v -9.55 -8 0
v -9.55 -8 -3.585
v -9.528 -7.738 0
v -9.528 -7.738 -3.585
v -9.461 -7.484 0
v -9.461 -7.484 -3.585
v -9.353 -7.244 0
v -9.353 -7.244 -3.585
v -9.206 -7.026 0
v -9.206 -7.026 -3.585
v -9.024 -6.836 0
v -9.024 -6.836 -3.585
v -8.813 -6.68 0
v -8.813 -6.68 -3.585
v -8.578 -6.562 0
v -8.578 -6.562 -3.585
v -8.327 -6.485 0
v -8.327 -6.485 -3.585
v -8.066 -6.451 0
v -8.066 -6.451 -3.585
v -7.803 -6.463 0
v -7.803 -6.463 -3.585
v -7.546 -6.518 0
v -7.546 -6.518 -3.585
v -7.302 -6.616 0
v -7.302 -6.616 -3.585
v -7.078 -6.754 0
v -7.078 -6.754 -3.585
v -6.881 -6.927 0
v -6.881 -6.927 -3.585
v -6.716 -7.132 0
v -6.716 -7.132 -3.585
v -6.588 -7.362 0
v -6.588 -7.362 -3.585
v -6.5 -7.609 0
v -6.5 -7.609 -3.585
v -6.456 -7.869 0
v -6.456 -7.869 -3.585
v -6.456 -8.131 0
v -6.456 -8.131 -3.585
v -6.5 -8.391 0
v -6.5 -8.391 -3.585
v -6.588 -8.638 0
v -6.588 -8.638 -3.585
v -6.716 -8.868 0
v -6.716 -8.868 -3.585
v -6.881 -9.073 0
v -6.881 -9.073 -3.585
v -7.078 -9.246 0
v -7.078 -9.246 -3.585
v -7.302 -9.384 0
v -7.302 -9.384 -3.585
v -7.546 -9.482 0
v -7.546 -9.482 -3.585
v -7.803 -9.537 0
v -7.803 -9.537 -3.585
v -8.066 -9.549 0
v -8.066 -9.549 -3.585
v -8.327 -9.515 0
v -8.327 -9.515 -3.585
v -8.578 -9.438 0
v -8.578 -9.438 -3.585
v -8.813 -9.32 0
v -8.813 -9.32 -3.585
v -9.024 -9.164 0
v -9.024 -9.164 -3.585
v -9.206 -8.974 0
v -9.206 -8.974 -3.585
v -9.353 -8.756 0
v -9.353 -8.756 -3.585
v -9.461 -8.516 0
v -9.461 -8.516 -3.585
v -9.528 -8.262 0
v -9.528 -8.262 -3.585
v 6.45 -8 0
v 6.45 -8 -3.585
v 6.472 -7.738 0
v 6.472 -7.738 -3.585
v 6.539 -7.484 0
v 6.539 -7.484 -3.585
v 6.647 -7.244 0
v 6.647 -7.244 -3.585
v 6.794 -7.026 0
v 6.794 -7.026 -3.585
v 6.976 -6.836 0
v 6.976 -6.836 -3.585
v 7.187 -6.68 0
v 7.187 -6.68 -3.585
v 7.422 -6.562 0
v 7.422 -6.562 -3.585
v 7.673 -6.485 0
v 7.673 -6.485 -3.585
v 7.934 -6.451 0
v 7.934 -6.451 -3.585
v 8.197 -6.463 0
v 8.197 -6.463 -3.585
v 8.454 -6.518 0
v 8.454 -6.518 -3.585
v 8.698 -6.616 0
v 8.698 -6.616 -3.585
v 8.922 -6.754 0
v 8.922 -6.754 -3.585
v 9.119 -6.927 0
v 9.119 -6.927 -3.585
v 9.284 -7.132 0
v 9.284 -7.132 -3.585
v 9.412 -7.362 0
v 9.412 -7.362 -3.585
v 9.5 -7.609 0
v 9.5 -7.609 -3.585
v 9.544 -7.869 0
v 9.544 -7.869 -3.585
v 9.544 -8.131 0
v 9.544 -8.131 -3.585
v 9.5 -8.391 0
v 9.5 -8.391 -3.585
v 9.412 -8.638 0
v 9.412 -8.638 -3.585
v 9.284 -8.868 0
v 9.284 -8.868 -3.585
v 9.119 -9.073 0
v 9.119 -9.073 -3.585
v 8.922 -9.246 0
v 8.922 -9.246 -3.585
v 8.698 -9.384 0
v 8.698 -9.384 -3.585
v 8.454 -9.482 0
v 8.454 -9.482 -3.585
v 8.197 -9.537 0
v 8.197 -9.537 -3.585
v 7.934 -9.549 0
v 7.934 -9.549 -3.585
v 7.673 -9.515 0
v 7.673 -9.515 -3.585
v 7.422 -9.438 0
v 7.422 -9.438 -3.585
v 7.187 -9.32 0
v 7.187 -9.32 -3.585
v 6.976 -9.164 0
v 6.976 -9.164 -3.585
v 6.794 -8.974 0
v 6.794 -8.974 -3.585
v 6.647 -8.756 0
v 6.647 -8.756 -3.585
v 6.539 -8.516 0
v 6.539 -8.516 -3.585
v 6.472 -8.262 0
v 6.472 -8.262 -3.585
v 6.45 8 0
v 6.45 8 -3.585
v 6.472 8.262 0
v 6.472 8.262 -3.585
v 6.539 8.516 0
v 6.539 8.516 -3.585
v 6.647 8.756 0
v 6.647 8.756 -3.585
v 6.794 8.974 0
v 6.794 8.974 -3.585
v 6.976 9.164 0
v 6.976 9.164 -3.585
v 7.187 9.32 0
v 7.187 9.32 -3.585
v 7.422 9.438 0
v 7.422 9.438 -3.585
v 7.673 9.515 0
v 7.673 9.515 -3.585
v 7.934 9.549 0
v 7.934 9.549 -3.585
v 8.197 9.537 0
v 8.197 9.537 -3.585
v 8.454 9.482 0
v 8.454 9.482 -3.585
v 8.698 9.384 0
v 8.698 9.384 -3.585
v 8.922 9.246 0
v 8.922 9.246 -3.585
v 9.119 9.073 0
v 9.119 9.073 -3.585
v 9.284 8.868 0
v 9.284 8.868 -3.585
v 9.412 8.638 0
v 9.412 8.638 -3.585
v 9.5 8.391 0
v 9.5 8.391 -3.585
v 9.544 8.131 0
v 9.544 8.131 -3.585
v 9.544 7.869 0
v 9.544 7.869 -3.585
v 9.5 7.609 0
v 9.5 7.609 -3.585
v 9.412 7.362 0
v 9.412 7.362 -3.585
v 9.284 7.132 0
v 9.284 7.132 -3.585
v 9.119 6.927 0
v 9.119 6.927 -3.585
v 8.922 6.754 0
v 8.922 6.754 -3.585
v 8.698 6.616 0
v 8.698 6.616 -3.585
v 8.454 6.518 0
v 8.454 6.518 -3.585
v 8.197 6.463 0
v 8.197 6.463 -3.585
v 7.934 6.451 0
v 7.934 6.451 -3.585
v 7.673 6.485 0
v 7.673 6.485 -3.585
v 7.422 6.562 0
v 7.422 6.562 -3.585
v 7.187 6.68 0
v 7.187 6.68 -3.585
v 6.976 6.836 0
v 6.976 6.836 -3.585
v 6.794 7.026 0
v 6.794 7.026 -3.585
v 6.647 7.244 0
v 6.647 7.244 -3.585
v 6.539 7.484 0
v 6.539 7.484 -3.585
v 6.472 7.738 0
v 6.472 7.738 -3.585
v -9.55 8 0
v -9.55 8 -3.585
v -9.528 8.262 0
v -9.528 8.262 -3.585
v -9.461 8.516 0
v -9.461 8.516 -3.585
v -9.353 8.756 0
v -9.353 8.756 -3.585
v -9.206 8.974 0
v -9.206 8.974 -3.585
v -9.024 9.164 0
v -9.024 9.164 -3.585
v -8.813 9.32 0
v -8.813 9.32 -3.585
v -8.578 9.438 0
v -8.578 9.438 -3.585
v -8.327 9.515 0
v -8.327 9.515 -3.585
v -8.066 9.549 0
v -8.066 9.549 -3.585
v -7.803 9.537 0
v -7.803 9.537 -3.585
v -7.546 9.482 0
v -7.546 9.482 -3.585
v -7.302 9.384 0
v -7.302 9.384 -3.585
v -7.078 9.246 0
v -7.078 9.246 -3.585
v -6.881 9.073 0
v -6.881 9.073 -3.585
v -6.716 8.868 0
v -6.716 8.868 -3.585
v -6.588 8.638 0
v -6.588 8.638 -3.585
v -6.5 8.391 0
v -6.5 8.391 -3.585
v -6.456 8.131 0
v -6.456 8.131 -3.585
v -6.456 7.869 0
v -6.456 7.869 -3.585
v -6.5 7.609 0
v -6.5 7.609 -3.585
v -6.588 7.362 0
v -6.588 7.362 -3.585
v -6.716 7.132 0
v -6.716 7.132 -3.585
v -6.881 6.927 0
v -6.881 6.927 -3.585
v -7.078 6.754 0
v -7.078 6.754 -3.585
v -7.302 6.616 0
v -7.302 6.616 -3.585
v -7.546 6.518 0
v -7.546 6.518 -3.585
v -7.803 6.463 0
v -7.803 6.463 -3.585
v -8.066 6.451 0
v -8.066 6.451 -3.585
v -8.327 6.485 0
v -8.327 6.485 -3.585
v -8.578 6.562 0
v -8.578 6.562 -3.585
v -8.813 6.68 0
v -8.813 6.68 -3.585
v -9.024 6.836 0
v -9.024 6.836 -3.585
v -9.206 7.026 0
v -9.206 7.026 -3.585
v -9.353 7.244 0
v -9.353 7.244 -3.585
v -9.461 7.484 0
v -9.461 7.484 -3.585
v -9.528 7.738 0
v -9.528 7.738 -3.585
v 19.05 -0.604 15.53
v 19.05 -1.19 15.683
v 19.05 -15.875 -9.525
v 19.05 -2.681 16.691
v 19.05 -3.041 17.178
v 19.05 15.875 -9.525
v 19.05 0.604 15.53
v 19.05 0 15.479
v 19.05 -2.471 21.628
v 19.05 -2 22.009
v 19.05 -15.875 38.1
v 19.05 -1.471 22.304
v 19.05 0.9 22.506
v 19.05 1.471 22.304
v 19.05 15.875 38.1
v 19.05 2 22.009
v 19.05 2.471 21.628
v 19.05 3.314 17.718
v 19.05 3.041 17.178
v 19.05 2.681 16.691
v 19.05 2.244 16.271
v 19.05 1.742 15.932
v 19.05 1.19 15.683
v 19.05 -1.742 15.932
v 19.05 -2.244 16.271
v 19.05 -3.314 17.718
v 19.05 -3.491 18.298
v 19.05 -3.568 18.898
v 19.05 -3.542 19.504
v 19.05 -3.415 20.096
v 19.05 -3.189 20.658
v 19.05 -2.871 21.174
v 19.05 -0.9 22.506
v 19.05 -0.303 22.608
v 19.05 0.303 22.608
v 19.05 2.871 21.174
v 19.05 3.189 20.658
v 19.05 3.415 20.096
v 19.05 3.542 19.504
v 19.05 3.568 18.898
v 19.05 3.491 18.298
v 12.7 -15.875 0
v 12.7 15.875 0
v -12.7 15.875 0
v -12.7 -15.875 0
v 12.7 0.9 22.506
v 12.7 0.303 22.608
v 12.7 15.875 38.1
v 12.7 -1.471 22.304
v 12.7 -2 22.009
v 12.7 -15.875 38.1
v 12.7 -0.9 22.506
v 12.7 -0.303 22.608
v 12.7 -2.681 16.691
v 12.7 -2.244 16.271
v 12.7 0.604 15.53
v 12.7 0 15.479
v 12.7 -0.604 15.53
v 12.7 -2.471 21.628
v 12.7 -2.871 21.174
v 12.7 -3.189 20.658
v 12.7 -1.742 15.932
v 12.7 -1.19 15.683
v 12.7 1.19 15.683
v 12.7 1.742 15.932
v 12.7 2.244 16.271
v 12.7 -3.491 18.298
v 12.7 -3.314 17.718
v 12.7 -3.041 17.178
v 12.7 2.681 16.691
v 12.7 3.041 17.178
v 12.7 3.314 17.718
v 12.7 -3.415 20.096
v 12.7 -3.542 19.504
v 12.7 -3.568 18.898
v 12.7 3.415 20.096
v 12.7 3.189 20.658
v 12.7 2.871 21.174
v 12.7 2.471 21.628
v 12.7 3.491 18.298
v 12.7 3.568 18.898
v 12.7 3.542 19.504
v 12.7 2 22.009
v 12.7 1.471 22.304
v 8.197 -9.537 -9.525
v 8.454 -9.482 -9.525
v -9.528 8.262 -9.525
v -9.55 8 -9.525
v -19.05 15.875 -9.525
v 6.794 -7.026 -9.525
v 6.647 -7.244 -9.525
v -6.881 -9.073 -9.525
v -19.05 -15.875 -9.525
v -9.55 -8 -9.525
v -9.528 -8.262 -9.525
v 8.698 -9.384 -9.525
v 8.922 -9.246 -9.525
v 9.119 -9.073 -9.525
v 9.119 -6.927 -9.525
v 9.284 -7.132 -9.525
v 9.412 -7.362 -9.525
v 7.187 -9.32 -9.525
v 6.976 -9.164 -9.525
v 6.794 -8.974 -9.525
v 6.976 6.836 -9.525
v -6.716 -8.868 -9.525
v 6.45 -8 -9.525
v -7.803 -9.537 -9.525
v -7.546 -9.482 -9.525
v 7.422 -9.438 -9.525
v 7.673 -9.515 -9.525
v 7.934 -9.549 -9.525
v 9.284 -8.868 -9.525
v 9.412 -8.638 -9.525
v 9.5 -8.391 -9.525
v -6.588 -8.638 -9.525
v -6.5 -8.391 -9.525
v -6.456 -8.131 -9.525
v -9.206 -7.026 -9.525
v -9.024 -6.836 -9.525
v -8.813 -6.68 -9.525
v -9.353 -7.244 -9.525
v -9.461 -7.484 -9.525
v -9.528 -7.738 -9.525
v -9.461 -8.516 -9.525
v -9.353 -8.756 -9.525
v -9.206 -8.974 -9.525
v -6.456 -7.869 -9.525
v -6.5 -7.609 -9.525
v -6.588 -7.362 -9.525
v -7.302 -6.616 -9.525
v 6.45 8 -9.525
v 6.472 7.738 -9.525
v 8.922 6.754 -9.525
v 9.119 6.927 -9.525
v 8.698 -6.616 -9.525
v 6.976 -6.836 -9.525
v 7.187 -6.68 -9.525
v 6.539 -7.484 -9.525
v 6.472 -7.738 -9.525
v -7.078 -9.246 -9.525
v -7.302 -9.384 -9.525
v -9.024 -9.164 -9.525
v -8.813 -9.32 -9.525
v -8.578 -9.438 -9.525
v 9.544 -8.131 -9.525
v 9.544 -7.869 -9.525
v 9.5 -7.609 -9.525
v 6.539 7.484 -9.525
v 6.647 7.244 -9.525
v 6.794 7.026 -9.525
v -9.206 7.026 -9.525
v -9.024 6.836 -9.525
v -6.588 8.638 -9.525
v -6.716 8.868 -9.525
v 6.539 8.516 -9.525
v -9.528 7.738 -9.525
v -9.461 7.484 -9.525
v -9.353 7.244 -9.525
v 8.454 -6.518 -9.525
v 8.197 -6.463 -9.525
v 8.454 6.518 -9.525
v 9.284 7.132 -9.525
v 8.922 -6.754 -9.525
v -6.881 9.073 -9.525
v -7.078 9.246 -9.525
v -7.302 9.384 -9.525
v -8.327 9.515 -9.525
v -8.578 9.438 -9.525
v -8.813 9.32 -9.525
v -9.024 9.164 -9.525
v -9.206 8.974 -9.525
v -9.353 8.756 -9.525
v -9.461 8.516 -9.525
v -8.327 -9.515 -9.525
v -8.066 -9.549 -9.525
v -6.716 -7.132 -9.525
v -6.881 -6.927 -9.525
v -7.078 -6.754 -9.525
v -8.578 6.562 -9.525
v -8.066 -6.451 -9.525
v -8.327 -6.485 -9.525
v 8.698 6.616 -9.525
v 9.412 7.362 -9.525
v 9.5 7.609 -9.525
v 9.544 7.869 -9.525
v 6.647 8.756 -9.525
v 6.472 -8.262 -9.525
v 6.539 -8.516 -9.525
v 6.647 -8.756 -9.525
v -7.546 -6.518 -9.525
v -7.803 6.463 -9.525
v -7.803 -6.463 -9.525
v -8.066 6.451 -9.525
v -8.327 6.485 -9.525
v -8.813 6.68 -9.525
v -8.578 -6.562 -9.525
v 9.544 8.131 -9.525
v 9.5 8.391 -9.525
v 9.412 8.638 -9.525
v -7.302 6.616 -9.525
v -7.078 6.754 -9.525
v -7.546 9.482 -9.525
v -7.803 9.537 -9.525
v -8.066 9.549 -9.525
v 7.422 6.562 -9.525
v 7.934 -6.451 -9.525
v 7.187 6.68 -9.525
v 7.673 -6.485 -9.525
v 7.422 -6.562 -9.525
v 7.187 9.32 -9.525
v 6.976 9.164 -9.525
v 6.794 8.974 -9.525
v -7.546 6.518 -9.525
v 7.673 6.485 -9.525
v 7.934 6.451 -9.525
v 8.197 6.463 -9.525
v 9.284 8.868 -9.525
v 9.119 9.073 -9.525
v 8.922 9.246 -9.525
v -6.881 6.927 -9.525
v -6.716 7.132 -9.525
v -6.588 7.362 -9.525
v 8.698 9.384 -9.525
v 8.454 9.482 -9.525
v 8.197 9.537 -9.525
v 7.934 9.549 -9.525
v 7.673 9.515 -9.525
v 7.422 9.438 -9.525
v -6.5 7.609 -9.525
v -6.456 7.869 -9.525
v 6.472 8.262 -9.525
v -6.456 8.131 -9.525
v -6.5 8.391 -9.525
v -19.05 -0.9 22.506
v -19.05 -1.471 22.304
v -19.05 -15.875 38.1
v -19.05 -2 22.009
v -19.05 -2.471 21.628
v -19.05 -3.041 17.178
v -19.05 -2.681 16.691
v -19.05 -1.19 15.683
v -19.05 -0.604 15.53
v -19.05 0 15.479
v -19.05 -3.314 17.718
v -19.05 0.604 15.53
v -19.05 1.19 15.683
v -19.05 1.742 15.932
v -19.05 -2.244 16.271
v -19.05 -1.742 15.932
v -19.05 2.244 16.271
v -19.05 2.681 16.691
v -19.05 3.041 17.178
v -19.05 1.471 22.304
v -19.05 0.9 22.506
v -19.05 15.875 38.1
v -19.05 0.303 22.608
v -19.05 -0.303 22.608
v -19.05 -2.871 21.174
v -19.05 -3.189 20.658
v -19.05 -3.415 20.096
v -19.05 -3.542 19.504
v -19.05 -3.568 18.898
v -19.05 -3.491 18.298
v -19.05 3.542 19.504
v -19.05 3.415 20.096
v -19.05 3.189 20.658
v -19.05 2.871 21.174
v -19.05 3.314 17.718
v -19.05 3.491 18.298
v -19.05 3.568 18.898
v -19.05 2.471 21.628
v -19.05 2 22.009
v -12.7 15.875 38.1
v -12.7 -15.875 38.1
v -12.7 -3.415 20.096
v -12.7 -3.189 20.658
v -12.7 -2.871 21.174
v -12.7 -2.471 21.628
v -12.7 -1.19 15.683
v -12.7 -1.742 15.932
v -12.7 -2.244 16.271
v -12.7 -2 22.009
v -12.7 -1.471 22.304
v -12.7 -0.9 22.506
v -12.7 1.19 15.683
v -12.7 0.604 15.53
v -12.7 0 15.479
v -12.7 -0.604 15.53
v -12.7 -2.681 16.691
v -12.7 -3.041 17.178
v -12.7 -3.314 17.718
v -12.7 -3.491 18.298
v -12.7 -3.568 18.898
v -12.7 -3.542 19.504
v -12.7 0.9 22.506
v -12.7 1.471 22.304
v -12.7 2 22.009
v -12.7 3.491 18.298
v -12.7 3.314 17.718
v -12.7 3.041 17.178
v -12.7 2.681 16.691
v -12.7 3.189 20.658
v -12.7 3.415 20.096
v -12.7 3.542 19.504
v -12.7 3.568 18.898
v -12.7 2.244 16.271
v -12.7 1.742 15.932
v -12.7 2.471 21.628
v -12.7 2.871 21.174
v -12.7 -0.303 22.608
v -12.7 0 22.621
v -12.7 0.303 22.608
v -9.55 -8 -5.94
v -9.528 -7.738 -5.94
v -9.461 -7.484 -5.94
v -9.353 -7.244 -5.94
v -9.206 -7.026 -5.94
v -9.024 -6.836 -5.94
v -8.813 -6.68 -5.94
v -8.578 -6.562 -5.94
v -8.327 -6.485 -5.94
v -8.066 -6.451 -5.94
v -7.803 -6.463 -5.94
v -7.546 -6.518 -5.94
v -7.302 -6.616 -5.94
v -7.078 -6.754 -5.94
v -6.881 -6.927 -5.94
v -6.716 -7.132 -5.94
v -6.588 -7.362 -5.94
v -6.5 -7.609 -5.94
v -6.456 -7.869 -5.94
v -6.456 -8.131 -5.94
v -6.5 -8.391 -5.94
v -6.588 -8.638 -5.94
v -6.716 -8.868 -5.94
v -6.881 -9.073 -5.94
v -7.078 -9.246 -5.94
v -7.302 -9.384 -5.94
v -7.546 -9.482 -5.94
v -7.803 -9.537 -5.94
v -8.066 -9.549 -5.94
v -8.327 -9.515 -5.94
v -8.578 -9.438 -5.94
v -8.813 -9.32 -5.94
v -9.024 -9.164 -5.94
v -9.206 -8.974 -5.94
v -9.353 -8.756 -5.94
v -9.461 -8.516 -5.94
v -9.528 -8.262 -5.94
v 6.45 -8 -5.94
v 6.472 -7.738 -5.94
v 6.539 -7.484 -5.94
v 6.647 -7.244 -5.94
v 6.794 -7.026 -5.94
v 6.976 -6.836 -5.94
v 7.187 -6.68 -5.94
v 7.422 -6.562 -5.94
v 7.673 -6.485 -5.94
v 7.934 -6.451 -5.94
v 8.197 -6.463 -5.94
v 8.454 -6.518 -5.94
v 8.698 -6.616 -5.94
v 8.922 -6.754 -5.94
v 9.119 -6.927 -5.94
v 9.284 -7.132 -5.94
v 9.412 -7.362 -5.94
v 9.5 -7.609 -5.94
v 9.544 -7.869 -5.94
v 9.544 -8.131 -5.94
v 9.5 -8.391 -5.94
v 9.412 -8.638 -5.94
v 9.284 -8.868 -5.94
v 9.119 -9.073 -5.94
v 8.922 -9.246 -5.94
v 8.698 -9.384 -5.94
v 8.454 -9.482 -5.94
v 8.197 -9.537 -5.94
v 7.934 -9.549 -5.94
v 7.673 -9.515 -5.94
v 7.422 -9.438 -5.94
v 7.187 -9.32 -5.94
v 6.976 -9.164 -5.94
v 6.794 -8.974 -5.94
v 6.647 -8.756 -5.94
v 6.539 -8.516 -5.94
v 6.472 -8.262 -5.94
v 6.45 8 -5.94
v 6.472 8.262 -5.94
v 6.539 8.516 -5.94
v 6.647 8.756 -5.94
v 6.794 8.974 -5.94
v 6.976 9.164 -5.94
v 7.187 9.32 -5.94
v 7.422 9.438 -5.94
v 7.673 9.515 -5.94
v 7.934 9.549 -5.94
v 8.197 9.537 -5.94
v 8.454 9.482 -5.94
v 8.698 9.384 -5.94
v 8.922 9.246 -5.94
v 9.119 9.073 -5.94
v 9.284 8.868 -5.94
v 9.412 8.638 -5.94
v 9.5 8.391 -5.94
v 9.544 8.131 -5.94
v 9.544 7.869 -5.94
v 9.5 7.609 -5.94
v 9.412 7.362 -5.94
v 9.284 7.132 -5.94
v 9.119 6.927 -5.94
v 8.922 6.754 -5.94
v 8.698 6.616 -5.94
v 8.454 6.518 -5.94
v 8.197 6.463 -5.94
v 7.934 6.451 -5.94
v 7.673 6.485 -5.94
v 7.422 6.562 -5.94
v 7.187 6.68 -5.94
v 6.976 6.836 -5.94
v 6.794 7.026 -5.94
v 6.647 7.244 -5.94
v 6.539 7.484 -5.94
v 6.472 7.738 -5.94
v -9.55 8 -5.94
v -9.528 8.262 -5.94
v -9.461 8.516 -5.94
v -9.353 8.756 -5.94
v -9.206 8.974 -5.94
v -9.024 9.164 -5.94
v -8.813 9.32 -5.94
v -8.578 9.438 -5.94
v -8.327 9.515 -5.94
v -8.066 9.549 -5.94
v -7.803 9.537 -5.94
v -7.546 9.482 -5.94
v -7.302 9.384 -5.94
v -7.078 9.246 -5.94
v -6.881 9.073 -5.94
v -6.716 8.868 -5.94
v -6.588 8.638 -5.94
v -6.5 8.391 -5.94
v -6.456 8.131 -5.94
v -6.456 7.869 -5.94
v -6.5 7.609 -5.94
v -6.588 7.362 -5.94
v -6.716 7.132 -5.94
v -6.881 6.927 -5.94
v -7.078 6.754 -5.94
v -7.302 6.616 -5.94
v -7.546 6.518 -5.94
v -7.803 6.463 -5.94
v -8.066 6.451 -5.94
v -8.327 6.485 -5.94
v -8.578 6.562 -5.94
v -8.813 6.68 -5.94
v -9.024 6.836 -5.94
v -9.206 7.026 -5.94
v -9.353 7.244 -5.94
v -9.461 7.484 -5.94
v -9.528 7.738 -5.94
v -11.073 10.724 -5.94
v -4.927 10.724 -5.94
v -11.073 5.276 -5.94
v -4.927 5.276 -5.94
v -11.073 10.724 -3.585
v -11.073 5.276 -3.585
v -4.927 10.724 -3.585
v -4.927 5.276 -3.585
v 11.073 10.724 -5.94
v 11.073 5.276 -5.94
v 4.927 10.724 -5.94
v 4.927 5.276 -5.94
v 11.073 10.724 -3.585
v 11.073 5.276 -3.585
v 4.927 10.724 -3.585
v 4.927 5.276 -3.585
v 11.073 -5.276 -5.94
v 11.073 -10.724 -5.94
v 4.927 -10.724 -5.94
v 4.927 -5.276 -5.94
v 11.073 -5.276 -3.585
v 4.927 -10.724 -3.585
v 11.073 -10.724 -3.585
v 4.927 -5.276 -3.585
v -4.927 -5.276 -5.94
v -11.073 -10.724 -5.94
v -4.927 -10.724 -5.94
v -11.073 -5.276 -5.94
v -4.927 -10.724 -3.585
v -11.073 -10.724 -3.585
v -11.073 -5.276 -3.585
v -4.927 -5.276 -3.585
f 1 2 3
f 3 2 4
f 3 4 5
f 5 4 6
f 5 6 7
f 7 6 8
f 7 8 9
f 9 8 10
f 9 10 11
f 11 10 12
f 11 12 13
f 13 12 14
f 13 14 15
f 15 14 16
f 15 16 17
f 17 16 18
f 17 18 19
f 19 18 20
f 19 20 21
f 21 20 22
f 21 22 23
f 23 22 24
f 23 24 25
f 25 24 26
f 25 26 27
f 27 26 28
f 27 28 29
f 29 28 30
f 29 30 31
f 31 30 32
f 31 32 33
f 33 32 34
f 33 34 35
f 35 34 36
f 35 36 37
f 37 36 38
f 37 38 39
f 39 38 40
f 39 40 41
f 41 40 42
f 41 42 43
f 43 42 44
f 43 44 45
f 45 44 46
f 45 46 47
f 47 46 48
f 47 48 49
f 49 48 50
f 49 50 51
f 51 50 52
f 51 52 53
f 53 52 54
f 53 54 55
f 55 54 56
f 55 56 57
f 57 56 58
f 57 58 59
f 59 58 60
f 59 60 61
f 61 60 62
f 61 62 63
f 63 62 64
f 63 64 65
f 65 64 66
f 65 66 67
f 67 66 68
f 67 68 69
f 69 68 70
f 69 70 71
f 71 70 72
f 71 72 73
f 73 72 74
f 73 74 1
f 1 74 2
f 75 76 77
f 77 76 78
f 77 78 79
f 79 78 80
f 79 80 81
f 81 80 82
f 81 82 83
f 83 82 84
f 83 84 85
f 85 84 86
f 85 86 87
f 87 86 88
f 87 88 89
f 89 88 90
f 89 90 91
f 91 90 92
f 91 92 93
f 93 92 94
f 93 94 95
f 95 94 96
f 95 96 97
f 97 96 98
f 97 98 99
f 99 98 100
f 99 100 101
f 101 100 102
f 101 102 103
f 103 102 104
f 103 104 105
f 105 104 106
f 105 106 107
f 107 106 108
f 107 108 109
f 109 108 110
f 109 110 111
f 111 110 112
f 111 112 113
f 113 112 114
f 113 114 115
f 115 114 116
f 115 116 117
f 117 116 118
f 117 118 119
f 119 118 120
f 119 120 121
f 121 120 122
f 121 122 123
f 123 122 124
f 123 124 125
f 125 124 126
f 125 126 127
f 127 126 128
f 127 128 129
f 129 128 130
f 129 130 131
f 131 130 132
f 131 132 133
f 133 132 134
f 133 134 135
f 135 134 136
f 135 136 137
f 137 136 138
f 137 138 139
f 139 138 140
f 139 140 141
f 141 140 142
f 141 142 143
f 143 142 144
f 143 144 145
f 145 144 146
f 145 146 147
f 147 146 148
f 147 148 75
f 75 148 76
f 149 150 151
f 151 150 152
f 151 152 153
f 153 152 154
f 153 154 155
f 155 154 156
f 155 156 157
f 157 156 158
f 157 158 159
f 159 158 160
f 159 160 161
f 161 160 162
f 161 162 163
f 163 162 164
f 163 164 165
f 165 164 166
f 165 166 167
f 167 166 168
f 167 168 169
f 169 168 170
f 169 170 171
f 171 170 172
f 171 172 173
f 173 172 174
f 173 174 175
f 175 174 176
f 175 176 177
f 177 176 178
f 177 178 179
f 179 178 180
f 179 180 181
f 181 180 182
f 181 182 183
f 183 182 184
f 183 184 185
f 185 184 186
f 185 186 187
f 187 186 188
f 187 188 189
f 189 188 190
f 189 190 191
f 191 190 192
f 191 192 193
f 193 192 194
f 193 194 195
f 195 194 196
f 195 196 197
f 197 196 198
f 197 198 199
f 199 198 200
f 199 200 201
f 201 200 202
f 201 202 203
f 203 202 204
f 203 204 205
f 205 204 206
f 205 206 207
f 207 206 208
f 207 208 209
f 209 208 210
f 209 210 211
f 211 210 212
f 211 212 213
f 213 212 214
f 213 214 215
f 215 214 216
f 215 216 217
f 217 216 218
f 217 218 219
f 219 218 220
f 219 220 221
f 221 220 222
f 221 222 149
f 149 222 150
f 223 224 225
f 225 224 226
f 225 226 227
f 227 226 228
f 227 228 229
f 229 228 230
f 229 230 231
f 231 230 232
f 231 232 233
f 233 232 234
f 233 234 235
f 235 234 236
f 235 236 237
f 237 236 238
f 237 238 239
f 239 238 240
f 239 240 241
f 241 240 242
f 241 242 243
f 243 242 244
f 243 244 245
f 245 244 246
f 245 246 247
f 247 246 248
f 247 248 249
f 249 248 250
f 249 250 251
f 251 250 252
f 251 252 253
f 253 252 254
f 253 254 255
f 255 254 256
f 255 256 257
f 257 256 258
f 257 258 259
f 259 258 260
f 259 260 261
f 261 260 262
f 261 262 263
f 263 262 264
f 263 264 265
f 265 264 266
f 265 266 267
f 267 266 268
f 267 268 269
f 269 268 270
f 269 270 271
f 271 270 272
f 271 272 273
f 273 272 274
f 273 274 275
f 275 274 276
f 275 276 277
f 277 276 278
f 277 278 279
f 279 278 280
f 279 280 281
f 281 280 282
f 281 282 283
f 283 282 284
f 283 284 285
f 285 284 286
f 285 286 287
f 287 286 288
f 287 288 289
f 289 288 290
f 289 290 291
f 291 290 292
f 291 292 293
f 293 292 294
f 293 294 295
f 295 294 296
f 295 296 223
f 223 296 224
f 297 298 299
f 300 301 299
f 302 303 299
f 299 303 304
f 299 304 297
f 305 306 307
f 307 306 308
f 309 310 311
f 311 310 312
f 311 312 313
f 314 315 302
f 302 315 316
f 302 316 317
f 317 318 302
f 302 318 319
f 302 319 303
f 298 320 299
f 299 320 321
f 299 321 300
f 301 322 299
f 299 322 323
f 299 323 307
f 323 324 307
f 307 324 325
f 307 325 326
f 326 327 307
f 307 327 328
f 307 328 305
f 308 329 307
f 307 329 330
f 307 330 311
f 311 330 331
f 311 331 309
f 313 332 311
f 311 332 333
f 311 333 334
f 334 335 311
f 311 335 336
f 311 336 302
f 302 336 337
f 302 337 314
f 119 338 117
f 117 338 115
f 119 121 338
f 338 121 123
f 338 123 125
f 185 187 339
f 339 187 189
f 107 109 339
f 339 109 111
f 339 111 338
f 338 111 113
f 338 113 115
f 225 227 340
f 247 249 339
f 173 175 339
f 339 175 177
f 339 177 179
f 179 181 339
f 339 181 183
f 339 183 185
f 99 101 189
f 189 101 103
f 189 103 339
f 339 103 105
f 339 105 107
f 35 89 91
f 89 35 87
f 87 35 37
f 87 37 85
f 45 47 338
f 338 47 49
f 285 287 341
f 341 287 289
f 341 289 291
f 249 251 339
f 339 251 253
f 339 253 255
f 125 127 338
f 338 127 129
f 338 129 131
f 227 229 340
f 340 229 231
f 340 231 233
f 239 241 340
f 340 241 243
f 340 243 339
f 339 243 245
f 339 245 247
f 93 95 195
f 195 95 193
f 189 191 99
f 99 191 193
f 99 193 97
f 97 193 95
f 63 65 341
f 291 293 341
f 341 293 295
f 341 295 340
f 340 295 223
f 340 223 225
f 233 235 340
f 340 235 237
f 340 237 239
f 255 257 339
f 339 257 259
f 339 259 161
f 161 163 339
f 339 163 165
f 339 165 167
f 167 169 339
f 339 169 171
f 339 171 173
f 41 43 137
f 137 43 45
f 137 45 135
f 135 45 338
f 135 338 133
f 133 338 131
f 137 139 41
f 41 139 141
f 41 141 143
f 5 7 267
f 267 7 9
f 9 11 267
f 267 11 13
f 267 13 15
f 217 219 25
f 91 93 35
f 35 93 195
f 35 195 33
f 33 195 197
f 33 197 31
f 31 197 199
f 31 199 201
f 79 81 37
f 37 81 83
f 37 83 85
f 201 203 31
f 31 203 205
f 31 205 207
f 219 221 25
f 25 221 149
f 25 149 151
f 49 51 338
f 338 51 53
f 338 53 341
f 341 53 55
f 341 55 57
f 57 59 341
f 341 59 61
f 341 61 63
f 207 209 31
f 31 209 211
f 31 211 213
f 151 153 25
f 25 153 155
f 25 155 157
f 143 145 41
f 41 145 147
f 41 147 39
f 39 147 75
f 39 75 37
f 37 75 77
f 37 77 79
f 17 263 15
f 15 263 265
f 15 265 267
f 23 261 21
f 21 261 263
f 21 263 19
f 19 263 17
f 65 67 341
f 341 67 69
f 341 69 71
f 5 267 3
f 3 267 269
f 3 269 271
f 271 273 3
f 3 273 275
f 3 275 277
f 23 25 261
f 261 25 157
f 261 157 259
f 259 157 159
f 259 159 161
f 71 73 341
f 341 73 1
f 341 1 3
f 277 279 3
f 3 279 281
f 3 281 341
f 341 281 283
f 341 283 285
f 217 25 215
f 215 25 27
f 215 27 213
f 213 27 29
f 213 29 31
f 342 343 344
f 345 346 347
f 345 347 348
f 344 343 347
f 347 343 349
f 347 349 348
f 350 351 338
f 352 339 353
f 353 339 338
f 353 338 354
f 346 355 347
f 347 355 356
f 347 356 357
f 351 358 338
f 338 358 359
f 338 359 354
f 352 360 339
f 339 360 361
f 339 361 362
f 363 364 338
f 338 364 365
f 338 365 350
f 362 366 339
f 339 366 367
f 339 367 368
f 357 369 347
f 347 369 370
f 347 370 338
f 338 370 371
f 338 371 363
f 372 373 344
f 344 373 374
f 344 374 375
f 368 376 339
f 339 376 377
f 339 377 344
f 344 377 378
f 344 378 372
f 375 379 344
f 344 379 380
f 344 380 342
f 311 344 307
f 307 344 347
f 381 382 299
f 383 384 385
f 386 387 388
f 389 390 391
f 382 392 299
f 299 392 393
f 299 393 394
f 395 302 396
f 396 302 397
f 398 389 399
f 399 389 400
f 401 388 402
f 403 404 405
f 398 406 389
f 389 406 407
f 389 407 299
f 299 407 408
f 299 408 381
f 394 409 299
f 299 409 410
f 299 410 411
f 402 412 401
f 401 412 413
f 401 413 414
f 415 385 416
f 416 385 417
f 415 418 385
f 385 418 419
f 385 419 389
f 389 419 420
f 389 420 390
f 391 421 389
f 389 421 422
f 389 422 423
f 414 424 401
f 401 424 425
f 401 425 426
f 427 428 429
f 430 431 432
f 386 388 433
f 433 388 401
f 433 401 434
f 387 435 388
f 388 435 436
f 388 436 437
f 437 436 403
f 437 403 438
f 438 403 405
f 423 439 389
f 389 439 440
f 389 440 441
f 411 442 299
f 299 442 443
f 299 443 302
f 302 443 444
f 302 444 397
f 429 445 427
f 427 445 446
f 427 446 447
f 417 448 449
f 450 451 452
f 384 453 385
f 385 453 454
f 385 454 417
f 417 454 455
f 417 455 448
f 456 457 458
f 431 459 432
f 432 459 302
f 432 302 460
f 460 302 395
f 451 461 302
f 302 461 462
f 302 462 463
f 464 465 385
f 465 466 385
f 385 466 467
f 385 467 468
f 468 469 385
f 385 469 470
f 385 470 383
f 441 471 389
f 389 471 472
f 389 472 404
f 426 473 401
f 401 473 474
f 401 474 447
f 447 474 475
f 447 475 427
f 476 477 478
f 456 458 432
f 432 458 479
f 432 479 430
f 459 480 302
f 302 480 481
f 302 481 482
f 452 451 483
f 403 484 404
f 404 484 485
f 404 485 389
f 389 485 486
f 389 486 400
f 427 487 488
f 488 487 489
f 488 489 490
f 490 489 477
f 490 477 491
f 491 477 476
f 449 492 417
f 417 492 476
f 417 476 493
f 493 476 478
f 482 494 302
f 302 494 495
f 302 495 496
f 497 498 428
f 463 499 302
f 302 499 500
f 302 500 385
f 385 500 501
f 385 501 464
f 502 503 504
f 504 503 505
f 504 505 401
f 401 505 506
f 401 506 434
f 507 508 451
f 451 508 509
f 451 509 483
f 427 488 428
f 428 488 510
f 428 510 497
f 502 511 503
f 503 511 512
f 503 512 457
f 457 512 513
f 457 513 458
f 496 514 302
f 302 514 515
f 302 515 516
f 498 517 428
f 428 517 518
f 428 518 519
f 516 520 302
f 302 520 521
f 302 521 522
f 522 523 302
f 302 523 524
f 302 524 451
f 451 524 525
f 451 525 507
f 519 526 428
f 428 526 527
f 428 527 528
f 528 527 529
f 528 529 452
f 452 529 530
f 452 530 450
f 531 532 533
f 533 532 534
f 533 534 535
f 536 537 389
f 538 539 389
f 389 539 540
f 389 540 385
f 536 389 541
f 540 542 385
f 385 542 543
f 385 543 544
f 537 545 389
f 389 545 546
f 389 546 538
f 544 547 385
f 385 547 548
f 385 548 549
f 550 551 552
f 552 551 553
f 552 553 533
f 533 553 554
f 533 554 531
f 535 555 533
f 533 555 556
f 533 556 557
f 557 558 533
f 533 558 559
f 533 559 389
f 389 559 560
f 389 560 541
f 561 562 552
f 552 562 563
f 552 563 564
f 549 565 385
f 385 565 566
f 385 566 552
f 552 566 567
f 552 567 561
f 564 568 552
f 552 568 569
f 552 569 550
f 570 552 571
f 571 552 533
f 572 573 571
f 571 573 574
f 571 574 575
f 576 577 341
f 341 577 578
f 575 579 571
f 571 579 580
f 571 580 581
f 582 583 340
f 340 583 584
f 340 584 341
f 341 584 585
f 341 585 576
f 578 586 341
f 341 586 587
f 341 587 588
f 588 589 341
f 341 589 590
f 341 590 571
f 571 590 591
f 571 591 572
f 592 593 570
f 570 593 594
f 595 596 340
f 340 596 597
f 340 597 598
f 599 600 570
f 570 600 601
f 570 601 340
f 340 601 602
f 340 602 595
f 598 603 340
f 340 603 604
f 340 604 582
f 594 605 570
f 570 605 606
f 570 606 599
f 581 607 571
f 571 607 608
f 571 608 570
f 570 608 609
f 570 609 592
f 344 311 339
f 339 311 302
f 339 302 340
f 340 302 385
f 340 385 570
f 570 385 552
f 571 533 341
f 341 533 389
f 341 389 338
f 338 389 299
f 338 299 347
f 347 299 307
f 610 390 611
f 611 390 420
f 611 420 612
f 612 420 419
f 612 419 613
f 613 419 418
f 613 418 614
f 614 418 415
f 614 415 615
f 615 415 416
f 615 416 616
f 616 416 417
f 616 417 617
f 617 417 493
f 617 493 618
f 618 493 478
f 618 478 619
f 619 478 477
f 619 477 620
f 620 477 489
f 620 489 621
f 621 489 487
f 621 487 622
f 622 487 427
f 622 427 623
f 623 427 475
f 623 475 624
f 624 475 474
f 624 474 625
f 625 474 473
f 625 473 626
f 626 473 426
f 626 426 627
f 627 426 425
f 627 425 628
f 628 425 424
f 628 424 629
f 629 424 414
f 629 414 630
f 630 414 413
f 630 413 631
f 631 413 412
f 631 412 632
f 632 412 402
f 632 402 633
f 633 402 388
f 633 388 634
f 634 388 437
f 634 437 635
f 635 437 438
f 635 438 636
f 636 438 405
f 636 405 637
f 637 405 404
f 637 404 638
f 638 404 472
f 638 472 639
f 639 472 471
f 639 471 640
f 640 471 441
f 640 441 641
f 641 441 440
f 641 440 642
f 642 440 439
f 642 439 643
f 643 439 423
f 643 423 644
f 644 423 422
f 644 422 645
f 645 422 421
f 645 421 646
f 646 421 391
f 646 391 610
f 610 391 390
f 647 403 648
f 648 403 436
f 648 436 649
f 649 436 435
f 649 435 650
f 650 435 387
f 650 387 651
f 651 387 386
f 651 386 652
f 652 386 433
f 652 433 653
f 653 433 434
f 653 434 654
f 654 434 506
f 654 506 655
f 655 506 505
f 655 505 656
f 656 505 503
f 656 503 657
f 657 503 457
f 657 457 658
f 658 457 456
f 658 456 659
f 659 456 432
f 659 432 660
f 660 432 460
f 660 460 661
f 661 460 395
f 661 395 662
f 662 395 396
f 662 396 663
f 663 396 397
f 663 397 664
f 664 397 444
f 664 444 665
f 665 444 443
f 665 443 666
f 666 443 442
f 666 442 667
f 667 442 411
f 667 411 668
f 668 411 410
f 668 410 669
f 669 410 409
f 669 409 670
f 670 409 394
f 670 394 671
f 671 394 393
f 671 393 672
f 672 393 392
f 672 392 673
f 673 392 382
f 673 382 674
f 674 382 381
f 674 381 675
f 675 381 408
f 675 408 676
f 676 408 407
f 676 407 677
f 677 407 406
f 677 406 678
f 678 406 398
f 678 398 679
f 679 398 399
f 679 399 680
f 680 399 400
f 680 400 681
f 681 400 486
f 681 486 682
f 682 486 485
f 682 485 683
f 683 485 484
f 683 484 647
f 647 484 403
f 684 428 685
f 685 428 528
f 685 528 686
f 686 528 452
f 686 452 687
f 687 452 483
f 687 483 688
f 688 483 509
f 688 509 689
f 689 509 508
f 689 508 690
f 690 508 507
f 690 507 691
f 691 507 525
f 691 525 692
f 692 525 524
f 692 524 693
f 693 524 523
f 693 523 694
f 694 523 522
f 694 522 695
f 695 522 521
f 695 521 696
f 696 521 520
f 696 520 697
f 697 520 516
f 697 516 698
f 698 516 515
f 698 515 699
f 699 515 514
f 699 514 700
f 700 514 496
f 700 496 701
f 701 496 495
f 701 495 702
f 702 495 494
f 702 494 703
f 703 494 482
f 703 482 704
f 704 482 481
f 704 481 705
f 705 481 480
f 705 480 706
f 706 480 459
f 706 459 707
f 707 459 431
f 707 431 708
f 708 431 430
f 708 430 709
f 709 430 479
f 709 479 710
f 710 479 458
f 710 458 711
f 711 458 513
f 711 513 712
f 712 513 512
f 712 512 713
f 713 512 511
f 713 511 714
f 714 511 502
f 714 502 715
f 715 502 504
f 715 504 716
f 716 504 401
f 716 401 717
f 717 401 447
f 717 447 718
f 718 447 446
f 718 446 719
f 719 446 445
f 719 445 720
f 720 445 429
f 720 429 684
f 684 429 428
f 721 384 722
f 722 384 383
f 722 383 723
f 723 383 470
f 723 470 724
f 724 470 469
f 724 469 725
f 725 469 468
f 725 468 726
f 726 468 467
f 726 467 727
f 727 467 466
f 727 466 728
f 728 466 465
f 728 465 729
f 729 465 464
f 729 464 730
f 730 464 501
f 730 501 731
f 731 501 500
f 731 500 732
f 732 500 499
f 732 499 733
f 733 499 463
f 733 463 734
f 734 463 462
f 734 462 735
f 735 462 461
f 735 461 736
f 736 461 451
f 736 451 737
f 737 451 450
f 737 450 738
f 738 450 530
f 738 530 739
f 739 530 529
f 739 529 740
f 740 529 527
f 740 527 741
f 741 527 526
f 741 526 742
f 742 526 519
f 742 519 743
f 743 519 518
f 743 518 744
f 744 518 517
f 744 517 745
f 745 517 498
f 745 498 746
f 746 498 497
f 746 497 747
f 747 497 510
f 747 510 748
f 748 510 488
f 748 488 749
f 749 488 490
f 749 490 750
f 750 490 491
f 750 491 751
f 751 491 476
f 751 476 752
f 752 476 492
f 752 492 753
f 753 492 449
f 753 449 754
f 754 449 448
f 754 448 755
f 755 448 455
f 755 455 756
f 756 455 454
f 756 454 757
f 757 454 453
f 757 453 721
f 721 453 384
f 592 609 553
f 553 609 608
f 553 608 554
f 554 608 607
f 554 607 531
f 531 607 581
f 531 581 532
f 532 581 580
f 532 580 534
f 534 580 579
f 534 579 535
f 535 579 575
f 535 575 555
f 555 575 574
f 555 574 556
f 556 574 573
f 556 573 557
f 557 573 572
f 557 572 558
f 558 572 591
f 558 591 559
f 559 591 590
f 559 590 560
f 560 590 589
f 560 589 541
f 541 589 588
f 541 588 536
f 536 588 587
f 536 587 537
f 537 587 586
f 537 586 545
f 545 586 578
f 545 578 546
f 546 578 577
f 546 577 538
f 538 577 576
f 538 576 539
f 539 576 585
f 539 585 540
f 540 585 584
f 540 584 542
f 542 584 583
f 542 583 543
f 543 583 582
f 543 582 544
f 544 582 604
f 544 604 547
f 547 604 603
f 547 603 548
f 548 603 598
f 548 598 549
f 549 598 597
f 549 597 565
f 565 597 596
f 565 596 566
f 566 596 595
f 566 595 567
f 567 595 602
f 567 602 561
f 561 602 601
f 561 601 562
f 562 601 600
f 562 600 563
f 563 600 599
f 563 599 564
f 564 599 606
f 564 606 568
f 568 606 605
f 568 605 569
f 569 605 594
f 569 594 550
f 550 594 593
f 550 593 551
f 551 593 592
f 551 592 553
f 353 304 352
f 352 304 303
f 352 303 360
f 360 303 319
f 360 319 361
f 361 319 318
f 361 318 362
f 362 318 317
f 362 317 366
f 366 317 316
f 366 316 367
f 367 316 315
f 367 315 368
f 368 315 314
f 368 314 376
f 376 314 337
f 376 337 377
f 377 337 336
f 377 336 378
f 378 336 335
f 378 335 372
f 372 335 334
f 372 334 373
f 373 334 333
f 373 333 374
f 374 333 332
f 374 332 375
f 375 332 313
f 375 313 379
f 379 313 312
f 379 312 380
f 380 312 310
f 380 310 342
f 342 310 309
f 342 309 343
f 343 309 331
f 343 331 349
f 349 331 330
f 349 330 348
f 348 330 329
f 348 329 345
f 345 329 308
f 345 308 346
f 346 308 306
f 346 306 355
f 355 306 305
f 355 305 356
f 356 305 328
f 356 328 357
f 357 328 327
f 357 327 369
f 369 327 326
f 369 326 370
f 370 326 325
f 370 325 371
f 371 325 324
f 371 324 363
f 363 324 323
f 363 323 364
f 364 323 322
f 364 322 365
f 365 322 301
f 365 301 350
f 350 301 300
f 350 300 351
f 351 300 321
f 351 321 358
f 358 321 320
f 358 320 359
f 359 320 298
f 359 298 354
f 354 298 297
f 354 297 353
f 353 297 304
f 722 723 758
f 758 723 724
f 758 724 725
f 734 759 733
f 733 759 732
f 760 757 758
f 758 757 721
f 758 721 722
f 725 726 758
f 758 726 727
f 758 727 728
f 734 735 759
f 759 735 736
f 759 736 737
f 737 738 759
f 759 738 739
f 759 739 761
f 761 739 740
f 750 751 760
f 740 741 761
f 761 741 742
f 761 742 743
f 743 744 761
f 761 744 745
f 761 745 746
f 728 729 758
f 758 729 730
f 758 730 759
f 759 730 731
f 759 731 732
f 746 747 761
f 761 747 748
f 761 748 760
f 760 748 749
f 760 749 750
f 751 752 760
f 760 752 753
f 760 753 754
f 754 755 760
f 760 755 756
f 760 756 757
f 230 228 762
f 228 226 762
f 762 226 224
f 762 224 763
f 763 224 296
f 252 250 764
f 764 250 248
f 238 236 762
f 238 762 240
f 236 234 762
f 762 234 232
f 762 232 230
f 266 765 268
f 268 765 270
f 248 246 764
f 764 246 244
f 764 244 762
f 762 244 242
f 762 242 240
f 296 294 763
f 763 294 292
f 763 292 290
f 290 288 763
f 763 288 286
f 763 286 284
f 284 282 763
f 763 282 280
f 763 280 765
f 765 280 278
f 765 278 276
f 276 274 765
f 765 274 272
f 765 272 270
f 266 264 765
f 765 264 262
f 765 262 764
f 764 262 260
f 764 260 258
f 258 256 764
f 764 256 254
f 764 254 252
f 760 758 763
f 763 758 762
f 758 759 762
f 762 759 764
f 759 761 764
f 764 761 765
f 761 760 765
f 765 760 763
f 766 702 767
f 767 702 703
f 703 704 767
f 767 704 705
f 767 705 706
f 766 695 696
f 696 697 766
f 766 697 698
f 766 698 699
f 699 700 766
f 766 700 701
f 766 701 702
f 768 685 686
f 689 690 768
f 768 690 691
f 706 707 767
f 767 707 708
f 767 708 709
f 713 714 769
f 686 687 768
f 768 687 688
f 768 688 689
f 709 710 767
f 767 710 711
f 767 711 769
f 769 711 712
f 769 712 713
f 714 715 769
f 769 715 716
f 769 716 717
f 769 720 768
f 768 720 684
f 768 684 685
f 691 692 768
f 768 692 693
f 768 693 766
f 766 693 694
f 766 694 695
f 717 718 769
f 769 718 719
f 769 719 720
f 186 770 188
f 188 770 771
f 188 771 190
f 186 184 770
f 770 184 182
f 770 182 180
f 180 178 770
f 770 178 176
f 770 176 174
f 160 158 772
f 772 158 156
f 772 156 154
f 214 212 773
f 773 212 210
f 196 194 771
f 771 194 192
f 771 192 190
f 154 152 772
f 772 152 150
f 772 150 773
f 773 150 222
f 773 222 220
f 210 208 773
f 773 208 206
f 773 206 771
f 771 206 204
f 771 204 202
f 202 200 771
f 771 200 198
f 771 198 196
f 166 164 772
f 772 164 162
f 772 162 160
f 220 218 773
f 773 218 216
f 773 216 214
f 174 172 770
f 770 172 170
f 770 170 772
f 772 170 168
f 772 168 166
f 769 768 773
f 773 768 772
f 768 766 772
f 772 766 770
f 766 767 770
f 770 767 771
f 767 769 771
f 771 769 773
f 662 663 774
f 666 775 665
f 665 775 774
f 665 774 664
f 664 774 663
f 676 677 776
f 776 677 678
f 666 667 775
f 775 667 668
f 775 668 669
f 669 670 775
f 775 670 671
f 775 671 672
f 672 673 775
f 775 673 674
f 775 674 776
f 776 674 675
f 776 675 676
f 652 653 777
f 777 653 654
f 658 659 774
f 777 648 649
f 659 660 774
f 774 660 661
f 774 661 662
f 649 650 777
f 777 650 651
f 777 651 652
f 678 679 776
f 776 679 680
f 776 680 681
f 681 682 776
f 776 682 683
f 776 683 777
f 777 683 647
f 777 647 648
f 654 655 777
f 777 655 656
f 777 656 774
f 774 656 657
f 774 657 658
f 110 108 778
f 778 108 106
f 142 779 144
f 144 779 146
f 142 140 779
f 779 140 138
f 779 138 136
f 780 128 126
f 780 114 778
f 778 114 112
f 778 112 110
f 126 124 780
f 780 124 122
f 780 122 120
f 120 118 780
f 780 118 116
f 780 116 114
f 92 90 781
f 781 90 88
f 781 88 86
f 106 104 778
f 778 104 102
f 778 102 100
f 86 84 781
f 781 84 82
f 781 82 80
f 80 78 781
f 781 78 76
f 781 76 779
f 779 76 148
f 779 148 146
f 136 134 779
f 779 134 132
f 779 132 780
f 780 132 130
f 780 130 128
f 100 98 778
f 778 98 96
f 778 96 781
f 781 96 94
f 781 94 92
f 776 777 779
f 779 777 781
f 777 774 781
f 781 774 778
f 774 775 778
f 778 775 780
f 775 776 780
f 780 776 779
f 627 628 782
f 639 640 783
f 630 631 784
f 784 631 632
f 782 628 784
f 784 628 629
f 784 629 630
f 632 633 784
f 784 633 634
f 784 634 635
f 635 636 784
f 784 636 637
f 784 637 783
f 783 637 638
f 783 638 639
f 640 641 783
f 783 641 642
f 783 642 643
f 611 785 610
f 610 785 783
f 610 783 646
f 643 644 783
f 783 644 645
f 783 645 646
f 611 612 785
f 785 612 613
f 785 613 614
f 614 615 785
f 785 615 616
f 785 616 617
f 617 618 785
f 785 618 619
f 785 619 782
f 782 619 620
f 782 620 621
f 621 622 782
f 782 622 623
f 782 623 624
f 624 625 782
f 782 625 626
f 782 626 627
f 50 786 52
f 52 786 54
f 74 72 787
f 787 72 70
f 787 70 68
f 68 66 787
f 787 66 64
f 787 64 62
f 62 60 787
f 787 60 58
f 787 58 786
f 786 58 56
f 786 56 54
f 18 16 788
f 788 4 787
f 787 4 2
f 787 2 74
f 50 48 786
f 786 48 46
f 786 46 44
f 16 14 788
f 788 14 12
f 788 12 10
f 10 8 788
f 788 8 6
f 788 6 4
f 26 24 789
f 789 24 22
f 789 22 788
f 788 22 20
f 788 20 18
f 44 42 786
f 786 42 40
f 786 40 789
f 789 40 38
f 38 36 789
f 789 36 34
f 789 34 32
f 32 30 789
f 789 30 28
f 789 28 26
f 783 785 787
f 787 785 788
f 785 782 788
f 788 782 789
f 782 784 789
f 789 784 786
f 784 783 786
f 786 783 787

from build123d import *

# Parameters (mm, degrees)
BOSS_EXTRUDE1_DEPTH     = 15.875
M2_5_CLEARANCE_HOLE1_D  = 3.1
F_1_4_CLEARANCE_HOLE1_D = 7.14248
SKETCH7_W               = 6.1468
SKETCH7_H               = 5.4483
CUT_EXTRUDE1_DEPTH      = 1.1771


with BuildPart() as part:
    # Sketch2 → Boss-Extrude1 (new body, symmetric)
    with BuildSketch(Plane(origin=(0, 0, 0), x_dir=(1, 0, 0), z_dir=(0, 1, 0))):
        Polygon((-12.7, 0), (-12.7, -38.1), (-19.05, -38.1), (-19.05, 9.525), (19.05, 9.525), (19.05, -38.1), (12.7, -38.1), (12.7, 0), align=None)
    extrude(amount=BOSS_EXTRUDE1_DEPTH, both=True)

    # M2.5 Clearance Hole1 (through all)
    with Locations(Plane(origin=(0, 0, -9.525), x_dir=(-1, 0, 0), z_dir=(0, 0, -1))):
        with Locations((8, 8), (-8, 8), (-8, -8), (8, -8)):
            Hole(M2_5_CLEARANCE_HOLE1_D / 2)

    # 1/4 Clearance Hole1 (through all)
    with Locations(Plane(origin=(19.05, 0, 0), x_dir=(0, 0, -1), z_dir=(1, 0, 0))):
        with Locations((-19.05, 0)):
            Hole(F_1_4_CLEARANCE_HOLE1_D / 2)

    # Sketch7 → Cut-Extrude1 (cut, symmetric)
    with BuildSketch(Plane.XY.offset(-4.7625)):
        with Locations((8, 8)):
            Rectangle(SKETCH7_W, SKETCH7_H)
        with Locations((-8, 8)):
            Rectangle(SKETCH7_W, SKETCH7_H)
        with Locations((-8, -8)):
            Rectangle(SKETCH7_W, SKETCH7_H)
        with Locations((8, -8)):
            Rectangle(SKETCH7_W, SKETCH7_H)
    extrude(amount=CUT_EXTRUDE1_DEPTH, both=True, mode=Mode.SUBTRACT)


solid = part.part
